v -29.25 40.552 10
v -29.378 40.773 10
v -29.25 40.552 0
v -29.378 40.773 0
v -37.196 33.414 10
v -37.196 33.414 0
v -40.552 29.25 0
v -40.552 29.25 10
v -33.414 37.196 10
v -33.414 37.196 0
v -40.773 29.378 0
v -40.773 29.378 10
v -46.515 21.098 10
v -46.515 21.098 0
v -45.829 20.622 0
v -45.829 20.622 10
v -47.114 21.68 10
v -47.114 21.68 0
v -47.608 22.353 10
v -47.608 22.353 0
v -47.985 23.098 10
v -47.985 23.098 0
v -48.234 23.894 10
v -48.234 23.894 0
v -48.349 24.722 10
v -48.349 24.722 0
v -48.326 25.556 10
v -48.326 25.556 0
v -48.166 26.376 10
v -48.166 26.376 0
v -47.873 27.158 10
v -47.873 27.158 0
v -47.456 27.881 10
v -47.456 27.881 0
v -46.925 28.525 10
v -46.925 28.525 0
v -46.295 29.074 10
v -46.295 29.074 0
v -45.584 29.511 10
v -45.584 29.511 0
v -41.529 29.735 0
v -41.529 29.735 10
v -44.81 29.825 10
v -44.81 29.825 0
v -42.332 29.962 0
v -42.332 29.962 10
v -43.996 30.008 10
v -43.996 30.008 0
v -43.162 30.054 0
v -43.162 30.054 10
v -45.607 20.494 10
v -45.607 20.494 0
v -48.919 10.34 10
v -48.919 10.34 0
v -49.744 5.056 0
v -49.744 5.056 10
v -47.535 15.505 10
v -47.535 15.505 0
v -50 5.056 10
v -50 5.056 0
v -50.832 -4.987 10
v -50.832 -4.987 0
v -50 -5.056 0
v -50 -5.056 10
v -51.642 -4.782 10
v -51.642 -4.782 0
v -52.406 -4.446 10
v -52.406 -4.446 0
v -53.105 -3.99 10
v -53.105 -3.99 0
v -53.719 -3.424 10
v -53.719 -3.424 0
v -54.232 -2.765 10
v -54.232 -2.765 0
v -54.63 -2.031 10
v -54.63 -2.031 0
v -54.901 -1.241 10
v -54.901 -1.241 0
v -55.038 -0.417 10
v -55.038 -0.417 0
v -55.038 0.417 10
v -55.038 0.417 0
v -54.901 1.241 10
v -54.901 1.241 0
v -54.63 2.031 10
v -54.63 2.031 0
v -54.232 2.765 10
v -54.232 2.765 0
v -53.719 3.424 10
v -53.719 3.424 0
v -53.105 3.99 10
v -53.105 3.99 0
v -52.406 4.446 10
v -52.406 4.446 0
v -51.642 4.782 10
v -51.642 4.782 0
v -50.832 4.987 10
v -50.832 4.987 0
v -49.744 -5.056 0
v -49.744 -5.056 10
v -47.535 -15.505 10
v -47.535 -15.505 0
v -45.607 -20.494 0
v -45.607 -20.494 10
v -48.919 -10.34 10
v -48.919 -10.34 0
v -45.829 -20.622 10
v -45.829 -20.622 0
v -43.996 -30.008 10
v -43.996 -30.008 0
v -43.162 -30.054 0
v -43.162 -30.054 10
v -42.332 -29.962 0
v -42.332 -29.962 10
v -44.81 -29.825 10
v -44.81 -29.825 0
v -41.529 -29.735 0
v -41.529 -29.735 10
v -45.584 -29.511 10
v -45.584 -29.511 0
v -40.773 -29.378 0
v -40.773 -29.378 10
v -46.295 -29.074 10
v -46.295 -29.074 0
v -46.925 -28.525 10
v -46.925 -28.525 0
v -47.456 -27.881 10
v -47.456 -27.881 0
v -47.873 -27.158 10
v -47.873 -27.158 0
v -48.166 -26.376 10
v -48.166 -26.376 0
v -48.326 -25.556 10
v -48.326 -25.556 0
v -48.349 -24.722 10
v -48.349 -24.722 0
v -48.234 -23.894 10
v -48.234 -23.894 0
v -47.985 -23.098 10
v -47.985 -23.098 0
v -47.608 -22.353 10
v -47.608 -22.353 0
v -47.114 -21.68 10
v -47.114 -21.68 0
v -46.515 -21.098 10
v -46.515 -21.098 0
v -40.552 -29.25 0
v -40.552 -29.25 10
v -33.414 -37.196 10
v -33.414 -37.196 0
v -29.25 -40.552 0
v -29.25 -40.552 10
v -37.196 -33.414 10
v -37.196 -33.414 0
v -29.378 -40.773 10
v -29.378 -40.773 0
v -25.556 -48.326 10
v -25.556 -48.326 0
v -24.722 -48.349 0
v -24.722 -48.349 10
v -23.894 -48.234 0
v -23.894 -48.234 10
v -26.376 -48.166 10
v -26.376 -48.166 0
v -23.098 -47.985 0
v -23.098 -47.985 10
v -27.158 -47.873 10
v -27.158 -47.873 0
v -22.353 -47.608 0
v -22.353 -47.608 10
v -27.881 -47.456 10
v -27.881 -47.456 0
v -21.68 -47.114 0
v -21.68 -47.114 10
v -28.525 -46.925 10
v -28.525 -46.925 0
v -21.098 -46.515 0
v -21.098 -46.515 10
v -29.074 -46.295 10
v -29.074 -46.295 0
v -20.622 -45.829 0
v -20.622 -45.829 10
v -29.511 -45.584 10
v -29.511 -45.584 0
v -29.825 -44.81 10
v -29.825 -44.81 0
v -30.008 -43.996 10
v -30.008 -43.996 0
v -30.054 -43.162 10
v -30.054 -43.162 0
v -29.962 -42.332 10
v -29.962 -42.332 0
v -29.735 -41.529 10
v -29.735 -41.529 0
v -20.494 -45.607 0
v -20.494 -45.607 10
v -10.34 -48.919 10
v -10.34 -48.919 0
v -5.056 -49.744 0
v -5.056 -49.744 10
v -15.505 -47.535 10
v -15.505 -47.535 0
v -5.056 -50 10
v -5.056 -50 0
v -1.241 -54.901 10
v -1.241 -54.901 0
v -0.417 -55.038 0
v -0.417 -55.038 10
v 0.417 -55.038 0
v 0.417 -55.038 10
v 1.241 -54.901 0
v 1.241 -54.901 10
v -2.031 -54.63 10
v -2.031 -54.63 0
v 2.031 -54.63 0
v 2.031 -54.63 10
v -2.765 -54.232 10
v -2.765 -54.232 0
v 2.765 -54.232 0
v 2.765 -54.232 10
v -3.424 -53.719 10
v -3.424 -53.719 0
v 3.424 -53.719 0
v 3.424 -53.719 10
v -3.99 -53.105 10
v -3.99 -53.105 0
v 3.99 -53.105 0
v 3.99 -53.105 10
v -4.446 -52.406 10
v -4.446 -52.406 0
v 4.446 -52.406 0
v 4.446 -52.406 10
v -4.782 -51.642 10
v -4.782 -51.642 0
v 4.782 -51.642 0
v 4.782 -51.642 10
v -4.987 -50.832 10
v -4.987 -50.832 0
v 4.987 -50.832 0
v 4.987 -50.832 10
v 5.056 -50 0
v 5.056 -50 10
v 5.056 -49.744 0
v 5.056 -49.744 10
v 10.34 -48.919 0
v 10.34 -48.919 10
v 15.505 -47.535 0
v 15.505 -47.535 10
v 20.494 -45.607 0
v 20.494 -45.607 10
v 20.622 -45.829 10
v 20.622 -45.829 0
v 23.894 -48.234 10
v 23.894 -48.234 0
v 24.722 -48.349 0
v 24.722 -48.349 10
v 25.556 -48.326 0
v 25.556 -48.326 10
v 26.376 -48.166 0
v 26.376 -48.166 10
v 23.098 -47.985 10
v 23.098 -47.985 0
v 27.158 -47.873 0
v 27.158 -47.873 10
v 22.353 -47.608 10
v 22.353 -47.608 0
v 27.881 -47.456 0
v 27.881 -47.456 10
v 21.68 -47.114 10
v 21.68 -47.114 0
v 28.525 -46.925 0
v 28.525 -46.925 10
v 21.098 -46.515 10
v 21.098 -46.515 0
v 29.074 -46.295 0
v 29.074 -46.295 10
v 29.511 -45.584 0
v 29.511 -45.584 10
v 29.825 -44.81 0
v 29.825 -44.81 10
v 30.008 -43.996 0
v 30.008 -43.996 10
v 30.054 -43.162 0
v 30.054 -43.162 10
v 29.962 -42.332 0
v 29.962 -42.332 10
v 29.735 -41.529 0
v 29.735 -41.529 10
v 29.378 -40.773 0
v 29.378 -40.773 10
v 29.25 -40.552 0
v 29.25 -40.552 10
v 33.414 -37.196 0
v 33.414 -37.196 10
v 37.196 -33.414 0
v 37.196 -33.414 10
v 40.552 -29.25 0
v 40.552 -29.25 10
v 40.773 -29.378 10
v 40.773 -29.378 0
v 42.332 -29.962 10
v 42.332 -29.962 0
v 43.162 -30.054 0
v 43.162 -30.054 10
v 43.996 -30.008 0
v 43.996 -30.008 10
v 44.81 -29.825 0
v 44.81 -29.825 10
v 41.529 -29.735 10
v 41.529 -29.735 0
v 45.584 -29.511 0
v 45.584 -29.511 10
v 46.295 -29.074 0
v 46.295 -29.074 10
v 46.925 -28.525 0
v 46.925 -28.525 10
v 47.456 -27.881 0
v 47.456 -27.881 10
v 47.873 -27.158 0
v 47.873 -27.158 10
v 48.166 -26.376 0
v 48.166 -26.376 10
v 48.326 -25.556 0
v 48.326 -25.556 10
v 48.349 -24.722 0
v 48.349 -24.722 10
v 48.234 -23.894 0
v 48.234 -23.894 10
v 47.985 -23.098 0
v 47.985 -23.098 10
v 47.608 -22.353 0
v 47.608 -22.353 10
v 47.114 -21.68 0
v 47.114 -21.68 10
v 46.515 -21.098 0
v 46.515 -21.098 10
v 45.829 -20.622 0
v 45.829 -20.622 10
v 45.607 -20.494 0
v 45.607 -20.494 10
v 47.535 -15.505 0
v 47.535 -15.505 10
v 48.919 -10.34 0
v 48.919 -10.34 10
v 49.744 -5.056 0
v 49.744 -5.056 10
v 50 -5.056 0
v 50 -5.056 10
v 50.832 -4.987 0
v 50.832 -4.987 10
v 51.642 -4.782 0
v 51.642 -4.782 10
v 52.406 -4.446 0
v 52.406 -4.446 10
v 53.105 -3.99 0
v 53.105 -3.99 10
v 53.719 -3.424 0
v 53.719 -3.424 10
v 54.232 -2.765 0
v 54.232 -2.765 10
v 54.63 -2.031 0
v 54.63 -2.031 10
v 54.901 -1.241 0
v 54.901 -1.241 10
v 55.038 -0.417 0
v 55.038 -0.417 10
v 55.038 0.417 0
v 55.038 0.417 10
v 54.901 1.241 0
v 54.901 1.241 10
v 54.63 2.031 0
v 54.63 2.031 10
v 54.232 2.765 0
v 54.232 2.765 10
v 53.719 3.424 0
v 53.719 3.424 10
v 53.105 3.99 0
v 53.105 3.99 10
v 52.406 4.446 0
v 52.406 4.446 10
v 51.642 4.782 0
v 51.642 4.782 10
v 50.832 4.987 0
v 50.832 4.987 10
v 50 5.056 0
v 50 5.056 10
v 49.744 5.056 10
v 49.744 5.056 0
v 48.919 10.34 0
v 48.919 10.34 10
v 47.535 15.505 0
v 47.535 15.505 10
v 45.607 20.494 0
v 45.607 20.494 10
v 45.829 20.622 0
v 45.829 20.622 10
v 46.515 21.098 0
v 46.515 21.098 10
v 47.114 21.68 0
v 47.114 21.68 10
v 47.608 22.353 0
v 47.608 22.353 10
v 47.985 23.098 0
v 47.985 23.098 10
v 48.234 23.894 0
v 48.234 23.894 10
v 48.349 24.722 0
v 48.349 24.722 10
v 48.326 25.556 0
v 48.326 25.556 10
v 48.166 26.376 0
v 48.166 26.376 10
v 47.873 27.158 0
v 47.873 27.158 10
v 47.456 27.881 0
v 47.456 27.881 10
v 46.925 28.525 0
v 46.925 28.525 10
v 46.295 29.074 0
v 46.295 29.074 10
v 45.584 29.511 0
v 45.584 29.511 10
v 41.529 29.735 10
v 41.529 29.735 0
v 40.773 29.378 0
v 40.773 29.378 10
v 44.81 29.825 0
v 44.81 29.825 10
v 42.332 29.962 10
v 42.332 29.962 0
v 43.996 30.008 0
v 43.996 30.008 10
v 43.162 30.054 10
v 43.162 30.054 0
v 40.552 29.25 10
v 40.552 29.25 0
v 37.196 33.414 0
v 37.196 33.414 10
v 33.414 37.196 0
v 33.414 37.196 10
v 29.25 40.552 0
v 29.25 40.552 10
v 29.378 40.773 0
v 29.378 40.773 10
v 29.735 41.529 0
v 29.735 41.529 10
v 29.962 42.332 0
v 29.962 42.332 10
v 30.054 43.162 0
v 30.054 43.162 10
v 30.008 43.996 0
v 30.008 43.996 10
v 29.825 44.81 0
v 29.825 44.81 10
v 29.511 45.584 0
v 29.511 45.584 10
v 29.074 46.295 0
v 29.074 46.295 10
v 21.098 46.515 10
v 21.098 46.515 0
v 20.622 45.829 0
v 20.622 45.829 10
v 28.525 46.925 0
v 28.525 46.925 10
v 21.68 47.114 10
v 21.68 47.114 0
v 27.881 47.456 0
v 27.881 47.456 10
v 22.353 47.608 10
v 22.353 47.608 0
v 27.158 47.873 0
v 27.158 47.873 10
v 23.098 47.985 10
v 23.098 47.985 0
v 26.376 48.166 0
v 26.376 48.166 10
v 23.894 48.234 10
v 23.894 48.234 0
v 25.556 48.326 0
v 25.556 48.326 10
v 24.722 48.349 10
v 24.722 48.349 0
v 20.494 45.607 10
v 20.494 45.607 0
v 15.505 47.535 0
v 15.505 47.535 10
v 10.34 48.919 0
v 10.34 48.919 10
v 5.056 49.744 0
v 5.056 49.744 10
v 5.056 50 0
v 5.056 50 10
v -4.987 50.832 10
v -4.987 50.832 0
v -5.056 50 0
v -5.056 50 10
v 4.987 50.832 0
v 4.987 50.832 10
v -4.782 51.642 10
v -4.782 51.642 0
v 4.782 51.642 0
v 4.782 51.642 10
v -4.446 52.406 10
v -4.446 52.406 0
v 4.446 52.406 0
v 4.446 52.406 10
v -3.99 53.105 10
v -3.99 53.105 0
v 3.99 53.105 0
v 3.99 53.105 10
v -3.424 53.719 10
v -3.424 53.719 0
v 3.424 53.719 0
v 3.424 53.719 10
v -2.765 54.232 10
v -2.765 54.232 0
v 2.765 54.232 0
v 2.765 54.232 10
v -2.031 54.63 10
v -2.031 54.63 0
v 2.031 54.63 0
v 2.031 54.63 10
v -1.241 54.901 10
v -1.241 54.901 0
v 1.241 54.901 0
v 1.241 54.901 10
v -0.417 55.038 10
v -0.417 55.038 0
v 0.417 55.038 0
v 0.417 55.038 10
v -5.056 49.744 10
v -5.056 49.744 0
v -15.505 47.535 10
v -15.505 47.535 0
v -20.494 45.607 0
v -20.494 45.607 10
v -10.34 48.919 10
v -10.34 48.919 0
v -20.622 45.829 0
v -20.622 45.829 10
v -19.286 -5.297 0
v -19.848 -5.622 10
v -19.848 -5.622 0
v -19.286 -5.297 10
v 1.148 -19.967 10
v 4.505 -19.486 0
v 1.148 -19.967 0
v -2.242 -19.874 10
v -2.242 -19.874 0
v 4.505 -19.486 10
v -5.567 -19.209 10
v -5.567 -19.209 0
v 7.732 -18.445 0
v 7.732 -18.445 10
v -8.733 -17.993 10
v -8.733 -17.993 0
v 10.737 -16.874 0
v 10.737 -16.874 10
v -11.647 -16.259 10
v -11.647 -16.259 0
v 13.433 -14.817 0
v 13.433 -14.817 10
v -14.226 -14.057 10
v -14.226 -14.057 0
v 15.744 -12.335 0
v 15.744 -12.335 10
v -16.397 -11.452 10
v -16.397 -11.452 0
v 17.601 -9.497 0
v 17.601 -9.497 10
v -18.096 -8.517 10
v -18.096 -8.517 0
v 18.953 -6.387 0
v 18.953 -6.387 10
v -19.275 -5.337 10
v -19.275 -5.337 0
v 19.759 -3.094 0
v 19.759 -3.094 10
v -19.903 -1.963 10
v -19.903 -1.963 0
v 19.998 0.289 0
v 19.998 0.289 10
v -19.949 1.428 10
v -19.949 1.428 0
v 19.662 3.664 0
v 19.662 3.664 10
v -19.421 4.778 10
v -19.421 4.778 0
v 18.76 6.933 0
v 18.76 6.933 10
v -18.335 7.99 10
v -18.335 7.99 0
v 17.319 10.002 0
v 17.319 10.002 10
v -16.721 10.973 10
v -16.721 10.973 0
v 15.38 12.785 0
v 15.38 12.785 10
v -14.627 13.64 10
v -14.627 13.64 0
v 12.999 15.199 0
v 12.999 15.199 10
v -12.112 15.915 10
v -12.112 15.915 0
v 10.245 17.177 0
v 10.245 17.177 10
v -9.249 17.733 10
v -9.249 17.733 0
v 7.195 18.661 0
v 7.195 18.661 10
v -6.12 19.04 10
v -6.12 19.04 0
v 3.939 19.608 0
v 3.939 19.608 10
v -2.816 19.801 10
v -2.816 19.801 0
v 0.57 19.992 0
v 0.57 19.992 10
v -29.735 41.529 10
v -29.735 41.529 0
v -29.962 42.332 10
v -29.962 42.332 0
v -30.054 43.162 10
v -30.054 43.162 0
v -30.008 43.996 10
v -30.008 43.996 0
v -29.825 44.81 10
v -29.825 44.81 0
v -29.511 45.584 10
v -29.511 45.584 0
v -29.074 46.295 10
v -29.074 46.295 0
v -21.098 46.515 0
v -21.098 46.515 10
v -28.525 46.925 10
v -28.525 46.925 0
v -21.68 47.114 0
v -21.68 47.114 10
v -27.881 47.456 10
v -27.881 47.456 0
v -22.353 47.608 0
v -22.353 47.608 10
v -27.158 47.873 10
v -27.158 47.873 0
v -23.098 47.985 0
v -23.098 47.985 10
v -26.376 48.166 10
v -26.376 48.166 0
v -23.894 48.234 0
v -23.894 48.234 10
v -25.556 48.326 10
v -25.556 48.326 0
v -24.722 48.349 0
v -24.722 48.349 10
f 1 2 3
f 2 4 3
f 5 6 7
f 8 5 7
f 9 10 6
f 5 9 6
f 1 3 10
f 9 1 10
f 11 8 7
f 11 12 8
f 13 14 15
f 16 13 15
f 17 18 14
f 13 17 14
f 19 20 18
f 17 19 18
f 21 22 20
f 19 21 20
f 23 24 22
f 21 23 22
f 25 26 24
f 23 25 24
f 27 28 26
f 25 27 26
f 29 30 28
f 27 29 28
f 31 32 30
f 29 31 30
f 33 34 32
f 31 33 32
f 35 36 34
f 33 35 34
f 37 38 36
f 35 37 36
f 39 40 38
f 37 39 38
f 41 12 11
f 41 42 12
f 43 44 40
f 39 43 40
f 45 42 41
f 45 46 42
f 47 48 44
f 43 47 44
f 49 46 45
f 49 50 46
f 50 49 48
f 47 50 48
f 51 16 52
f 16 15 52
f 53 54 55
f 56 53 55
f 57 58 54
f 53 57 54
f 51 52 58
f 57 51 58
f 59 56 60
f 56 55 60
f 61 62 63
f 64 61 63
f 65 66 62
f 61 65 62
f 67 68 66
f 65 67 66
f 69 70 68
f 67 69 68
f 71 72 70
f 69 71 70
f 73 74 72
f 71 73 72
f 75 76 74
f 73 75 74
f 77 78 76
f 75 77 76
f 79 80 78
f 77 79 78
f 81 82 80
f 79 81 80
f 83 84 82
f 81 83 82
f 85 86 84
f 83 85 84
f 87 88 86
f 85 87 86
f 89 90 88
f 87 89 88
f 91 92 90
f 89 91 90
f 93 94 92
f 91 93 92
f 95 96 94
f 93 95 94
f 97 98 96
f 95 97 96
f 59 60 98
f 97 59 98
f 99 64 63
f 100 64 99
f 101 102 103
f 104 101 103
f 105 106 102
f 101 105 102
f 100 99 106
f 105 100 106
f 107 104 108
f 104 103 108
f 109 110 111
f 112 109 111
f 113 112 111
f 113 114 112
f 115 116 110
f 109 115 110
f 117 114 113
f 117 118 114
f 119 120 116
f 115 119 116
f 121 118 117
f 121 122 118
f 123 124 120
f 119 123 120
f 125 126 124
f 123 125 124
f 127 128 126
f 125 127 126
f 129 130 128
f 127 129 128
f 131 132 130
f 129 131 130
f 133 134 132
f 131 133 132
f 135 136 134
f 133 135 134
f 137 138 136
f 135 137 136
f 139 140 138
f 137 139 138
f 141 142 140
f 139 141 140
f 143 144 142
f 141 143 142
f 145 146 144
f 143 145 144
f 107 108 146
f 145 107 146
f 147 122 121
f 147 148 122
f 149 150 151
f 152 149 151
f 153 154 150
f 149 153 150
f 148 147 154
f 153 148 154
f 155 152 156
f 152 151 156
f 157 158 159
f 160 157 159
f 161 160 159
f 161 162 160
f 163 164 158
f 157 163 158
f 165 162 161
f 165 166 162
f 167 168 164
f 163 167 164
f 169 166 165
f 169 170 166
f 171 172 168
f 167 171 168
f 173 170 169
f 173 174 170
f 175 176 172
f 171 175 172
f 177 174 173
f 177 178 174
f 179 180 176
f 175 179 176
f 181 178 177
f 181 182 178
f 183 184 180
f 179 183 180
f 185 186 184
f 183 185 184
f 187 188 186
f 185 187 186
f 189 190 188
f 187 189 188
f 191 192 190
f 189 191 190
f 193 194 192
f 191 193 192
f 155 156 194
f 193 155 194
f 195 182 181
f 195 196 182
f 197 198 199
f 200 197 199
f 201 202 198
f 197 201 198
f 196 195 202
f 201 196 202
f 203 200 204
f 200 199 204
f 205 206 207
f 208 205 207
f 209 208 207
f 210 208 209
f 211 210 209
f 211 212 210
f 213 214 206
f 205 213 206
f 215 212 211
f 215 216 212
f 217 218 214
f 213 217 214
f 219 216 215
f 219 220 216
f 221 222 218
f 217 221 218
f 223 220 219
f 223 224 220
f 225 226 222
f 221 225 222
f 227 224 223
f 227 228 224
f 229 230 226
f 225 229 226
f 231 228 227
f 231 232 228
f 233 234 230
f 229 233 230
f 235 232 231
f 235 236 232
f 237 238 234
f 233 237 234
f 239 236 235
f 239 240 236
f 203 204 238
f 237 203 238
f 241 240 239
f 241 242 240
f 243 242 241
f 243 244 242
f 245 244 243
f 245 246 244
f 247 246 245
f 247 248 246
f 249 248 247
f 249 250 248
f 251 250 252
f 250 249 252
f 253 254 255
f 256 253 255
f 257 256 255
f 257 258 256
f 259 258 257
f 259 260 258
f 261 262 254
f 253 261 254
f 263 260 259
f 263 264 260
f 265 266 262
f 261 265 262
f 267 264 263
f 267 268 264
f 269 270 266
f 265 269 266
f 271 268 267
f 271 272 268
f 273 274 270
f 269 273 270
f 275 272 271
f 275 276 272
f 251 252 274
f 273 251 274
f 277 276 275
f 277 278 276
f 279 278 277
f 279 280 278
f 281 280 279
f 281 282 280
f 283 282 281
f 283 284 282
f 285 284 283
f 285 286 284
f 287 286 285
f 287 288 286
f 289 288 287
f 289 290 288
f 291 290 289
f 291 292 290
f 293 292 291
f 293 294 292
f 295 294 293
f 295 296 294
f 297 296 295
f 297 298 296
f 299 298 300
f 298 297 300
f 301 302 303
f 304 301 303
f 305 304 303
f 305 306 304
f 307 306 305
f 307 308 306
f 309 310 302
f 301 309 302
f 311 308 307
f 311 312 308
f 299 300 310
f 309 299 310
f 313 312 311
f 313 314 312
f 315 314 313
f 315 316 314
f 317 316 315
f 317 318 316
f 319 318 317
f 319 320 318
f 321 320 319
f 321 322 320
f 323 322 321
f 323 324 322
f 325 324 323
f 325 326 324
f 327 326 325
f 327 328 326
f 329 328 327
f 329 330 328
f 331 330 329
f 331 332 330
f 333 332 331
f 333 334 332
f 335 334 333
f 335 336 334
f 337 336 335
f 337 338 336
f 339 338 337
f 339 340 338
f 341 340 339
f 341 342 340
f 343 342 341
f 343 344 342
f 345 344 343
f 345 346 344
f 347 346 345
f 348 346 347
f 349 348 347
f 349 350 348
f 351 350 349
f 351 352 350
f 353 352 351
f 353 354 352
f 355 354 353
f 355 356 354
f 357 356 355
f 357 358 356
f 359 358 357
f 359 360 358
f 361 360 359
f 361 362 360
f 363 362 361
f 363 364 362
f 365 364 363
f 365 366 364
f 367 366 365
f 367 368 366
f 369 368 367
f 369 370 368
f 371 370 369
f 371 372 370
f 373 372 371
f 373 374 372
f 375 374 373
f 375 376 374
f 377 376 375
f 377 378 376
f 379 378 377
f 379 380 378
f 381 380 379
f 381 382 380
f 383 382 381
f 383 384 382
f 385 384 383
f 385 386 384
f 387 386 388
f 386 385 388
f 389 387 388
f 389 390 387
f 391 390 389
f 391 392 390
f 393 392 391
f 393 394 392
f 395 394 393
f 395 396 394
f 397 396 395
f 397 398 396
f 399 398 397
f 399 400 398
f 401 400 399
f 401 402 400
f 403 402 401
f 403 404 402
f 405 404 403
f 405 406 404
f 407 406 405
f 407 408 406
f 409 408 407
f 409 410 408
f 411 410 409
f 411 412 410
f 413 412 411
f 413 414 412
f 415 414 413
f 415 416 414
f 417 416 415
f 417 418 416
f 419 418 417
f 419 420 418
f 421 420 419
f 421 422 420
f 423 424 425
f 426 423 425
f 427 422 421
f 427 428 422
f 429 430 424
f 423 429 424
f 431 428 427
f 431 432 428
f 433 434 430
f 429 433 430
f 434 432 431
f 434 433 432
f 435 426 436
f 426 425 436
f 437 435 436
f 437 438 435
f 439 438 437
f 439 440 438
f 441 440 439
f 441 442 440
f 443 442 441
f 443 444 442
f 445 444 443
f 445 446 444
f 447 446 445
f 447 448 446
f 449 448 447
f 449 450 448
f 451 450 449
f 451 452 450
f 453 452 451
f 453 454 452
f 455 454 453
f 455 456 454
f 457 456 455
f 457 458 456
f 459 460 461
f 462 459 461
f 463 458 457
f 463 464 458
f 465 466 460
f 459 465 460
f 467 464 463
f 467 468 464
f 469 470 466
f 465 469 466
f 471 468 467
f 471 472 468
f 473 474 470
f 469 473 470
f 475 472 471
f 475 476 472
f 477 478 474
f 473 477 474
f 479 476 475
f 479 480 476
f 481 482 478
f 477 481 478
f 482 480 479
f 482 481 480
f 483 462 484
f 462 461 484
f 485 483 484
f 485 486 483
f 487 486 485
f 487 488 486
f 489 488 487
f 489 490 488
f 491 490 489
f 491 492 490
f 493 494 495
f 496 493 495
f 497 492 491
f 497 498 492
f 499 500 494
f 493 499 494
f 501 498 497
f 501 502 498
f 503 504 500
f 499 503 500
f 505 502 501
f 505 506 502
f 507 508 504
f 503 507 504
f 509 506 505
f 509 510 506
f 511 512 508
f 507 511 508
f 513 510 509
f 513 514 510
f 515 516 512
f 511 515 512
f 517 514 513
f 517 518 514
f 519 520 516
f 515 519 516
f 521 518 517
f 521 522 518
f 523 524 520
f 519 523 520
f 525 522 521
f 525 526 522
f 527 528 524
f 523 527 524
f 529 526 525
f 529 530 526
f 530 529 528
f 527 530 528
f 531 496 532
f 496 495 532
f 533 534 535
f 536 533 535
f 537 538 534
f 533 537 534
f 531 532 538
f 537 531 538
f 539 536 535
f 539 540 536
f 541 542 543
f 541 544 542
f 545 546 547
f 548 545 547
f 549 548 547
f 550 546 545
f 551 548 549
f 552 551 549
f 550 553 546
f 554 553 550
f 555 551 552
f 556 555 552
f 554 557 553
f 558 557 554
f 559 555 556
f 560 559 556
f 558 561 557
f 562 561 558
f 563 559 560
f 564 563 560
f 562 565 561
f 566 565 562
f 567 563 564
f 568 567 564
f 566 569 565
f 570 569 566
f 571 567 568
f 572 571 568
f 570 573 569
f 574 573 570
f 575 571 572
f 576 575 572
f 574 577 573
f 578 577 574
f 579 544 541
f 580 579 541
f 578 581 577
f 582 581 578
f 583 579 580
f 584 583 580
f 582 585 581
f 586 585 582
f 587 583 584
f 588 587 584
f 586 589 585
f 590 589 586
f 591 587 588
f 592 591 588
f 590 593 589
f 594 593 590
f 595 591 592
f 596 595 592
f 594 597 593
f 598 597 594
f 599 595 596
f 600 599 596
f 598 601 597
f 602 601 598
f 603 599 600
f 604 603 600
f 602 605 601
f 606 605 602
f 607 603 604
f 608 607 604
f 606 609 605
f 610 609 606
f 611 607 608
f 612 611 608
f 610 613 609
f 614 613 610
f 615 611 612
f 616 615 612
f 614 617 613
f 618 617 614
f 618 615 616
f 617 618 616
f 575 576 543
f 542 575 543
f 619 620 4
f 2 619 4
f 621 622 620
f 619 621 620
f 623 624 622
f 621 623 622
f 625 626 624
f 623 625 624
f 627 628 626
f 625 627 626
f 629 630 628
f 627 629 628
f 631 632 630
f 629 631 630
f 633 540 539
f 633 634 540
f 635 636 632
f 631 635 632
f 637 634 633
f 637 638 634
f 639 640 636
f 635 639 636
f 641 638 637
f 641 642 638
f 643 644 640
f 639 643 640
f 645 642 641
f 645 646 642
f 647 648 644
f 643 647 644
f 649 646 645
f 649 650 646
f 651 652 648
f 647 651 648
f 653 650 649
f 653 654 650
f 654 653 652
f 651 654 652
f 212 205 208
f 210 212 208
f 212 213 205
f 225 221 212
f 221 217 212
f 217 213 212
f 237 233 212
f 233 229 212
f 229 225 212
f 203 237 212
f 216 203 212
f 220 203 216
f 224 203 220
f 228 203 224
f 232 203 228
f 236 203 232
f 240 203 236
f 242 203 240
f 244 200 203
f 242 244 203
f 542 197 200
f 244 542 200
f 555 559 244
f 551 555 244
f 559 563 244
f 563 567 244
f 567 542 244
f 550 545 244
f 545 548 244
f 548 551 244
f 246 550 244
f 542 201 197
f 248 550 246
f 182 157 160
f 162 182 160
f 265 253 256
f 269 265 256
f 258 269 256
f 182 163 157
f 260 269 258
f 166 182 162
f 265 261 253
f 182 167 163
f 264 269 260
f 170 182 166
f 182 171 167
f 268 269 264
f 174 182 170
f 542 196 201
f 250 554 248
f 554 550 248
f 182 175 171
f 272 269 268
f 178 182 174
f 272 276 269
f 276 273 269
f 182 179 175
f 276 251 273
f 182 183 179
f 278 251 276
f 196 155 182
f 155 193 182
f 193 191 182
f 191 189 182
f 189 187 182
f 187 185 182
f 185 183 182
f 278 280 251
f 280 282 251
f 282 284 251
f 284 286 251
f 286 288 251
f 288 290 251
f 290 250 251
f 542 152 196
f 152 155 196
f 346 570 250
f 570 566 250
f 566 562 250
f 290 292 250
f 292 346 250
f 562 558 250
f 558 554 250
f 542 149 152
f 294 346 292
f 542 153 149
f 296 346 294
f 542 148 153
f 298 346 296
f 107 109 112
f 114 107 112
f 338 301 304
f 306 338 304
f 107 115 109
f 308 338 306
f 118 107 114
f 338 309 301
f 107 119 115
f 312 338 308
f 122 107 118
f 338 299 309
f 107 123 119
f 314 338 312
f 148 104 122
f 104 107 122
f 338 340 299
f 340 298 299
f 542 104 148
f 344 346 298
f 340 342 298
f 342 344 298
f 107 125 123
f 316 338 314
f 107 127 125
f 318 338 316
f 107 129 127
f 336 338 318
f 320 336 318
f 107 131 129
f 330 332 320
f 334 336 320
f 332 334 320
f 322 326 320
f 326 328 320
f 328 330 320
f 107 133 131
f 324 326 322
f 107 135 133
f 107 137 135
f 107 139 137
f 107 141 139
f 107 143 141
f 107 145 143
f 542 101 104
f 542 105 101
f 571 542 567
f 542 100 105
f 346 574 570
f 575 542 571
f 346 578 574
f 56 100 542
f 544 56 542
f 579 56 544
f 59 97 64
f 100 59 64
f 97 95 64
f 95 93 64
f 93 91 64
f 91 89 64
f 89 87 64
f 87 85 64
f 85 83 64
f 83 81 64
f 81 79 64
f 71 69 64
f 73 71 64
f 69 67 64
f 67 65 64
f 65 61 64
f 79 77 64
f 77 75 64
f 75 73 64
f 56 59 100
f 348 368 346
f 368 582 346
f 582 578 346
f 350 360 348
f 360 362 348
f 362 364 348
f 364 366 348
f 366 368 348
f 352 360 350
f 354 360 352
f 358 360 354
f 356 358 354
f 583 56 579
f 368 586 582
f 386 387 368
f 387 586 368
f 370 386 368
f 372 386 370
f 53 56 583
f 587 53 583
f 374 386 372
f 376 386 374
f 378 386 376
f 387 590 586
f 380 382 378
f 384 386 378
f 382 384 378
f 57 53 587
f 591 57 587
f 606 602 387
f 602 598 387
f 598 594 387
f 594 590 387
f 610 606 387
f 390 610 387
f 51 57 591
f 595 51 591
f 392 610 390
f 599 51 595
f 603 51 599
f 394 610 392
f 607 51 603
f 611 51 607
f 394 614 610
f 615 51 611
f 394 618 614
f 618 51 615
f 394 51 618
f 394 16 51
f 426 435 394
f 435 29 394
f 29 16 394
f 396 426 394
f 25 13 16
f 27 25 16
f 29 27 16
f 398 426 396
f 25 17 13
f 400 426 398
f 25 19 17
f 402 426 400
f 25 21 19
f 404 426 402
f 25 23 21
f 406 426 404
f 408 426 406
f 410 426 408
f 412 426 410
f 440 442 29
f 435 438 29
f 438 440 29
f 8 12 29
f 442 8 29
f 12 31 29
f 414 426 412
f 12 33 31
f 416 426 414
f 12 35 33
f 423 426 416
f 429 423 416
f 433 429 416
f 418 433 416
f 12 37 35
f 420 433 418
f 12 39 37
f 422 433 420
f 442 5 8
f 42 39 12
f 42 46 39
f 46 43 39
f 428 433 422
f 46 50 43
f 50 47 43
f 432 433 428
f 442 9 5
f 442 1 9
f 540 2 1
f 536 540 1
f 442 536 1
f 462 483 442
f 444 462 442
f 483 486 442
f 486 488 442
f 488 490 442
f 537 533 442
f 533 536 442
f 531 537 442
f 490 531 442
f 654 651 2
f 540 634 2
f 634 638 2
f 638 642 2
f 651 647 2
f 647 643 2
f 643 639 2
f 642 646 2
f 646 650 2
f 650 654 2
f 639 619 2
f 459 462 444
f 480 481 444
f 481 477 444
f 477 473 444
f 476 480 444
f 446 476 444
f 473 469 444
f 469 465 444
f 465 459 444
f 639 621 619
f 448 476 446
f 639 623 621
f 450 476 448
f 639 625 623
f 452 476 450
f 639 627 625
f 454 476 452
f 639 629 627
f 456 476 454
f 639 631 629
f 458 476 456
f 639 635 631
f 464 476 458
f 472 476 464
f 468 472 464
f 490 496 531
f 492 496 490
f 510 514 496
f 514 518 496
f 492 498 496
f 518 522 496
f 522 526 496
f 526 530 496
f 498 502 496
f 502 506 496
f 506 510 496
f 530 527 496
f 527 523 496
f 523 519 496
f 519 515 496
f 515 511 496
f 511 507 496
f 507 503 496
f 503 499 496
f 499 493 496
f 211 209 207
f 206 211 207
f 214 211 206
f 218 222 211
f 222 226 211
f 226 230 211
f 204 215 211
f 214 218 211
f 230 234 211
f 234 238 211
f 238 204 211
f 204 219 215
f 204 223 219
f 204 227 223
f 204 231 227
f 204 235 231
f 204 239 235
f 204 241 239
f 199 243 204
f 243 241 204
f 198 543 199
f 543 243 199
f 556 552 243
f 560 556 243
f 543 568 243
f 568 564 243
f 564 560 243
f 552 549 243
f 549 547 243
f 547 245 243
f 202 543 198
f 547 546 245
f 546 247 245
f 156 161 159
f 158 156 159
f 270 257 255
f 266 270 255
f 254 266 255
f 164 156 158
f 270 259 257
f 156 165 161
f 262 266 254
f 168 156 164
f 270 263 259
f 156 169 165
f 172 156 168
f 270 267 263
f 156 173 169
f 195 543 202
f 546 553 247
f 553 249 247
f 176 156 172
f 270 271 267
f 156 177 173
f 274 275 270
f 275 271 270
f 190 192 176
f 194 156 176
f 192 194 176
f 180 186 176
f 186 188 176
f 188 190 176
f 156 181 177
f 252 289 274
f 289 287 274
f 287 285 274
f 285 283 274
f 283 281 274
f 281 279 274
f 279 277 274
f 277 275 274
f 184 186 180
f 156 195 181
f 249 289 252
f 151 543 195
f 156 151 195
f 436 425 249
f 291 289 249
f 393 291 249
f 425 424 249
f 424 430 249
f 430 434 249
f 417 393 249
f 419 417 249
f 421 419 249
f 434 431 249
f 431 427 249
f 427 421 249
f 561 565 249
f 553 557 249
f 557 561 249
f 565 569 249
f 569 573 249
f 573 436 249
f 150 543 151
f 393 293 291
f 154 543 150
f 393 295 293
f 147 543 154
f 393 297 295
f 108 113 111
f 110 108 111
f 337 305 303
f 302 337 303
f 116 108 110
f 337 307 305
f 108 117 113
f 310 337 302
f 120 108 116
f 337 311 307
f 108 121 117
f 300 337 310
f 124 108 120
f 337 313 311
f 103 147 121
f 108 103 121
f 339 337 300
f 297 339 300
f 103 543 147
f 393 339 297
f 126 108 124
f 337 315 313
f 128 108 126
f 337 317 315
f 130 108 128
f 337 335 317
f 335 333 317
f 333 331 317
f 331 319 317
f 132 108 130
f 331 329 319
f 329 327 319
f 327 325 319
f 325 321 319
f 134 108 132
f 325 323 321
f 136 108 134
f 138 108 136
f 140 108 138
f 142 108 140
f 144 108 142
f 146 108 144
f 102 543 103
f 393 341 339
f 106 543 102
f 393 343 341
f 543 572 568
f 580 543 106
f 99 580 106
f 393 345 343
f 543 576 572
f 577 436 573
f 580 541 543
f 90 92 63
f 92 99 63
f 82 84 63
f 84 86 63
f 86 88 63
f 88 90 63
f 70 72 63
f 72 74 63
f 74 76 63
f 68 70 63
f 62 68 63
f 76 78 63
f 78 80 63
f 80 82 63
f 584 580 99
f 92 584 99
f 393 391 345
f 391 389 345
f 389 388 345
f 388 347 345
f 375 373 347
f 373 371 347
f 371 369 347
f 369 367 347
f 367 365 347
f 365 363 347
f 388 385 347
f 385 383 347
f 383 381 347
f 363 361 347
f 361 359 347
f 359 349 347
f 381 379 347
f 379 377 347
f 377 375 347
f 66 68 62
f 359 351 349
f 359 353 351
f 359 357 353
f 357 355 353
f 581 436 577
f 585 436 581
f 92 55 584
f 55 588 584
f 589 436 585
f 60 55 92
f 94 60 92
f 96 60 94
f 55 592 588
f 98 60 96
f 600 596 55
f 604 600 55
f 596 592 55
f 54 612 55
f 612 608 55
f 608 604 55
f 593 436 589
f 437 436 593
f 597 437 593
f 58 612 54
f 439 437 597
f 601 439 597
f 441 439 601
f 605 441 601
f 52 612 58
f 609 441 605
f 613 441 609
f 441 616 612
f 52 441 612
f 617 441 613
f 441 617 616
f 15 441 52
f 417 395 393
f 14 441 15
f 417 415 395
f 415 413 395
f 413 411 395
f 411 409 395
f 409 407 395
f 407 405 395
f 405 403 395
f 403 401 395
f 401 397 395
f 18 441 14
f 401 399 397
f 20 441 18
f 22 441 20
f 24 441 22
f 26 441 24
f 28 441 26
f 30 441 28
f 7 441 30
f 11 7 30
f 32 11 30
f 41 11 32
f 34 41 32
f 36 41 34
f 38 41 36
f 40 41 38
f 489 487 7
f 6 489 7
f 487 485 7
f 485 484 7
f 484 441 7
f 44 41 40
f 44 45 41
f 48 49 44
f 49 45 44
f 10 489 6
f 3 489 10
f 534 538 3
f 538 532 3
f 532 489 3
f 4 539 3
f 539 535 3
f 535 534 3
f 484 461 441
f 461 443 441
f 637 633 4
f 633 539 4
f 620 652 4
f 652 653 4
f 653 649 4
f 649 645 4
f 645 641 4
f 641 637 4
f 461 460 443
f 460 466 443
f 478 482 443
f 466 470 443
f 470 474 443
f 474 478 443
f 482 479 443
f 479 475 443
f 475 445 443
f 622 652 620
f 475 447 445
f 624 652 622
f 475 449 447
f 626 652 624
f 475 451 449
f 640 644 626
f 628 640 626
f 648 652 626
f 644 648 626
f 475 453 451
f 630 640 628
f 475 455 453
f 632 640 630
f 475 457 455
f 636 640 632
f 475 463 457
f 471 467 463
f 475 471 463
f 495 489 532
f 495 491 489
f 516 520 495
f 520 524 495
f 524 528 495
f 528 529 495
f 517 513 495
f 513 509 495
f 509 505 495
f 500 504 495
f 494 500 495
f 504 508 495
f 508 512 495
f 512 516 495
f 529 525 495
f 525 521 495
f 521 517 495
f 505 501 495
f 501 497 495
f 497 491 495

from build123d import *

# Parameters (mm, degrees)
BOSS_EXTRUDE1_DEPTH = 10


with BuildPart() as part:
    # Sketch1 → Boss-Extrude1 (new body)
    with BuildSketch(Plane.XY):
        with BuildLine():
            Line((-5.055544828, 50), (-5.055544828, 49.743758066))
            ThreePointArc((-5.055544828, 49.743758066), (-12.940952255, 48.296291315), (-20.493648782, 45.607130579))
            Line((-20.493648782, 45.607130579), (-20.621769749, 45.829042603))
            ThreePointArc((-20.621769749, 45.829042603), (-27.527772414, 47.67950044), (-29.378230251, 40.773497775))
            Line((-29.378230251, 40.773497775), (-29.250109284, 40.551585751))
            ThreePointArc((-29.250109284, 40.551585751), (-35.355339059, 35.355339059), (-40.551585751, 29.250109284))
            Line((-40.551585751, 29.250109284), (-40.773497775, 29.378230251))
            ThreePointArc((-40.773497775, 29.378230251), (-47.67950044, 27.527772414), (-45.829042603, 20.621769749))
            Line((-45.829042603, 20.621769749), (-45.607130579, 20.493648782))
            ThreePointArc((-45.607130579, 20.493648782), (-48.296291315, 12.940952255), (-49.743758066, 5.055544828))
            Line((-49.743758066, 5.055544828), (-50, 5.055544828))
            ThreePointArc((-50, 5.055544828), (-55.055544828, 0), (-50, -5.055544828))
            Line((-50, -5.055544828), (-49.743758066, -5.055544828))
            ThreePointArc((-49.743758066, -5.055544828), (-48.296291315, -12.940952255), (-45.607130579, -20.493648782))
            Line((-45.607130579, -20.493648782), (-45.829042603, -20.621769749))
            ThreePointArc((-45.829042603, -20.621769749), (-47.67950044, -27.527772414), (-40.773497775, -29.378230251))
            Line((-40.773497775, -29.378230251), (-40.551585751, -29.250109284))
            ThreePointArc((-40.551585751, -29.250109284), (-35.355339059, -35.355339059), (-29.250109284, -40.551585751))
            Line((-29.250109284, -40.551585751), (-29.378230251, -40.773497775))
            ThreePointArc((-29.378230251, -40.773497775), (-27.527772414, -47.67950044), (-20.621769749, -45.829042603))
            Line((-20.621769749, -45.829042603), (-20.493648782, -45.607130579))
            ThreePointArc((-20.493648782, -45.607130579), (-12.940952255, -48.296291315), (-5.055544828, -49.743758066))
            Line((-5.055544828, -49.743758066), (-5.055544828, -50))
            ThreePointArc((-5.055544828, -50), (0, -55.055544828), (5.055544828, -50))
            Line((5.055544828, -50), (5.055544828, -49.743758066))
            ThreePointArc((5.055544828, -49.743758066), (12.940952255, -48.296291315), (20.493648782, -45.607130579))
            Line((20.493648782, -45.607130579), (20.621769749, -45.829042603))
            ThreePointArc((20.621769749, -45.829042603), (27.527772414, -47.67950044), (29.378230251, -40.773497775))
            Line((29.378230251, -40.773497775), (29.250109284, -40.551585751))
            ThreePointArc((29.250109284, -40.551585751), (35.355339059, -35.355339059), (40.551585751, -29.250109284))
            Line((40.551585751, -29.250109284), (40.773497775, -29.378230251))
            ThreePointArc((40.773497775, -29.378230251), (47.67950044, -27.527772414), (45.829042603, -20.621769749))
            Line((45.829042603, -20.621769749), (45.607130579, -20.493648782))
            ThreePointArc((45.607130579, -20.493648782), (48.296291315, -12.940952255), (49.743758066, -5.055544828))
            Line((49.743758066, -5.055544828), (50, -5.055544828))
            ThreePointArc((50, -5.055544828), (55.055544828, 0), (50, 5.055544828))
            Line((50, 5.055544828), (49.743758066, 5.055544828))
            ThreePointArc((49.743758066, 5.055544828), (48.296291315, 12.940952255), (45.607130579, 20.493648782))
            Line((45.607130579, 20.493648782), (45.829042603, 20.621769749))
            ThreePointArc((45.829042603, 20.621769749), (47.67950044, 27.527772414), (40.773497775, 29.378230251))
            Line((40.773497775, 29.378230251), (40.551585751, 29.250109284))
            ThreePointArc((40.551585751, 29.250109284), (35.355339059, 35.355339059), (29.250109284, 40.551585751))
            Line((29.250109284, 40.551585751), (29.378230251, 40.773497775))
            ThreePointArc((29.378230251, 40.773497775), (27.527772414, 47.67950044), (20.621769749, 45.829042603))
            Line((20.621769749, 45.829042603), (20.493648782, 45.607130579))
            ThreePointArc((20.493648782, 45.607130579), (12.940952255, 48.296291315), (5.055544828, 49.743758066))
            Line((5.055544828, 49.743758066), (5.055544828, 50))
            ThreePointArc((5.055544828, 50), (0, 55.055544828), (-5.055544828, 50))
        make_face()
        with BuildLine():
            ThreePointArc((-19.274651306, -5.337397964), (-19.565972123, -5.470493987), (-19.84828049, -5.621769749))
            Line((-19.84828049, -5.621769749), (-19.285788402, -5.297014791))
            ThreePointArc((-19.285788402, -5.297014791), (-19.323926995, -5.156146381), (-19.361036662, -5.015003426))
            ThreePointArc((-19.361036662, -5.015003426), (-20, 0), (-19.361036662, 5.015003426))
            ThreePointArc((-19.361036662, 5.015003426), (-19.318516526, 5.176380902), (-19.274651306, 5.337397964))
            ThreePointArc((-19.274651306, 5.337397964), (-17.320508076, 10), (-14.25964788, 14.023638698))
            ThreePointArc((-14.25964788, 14.023638698), (-14.142135624, 14.142135624), (-14.023638698, 14.25964788))
            ThreePointArc((-14.023638698, 14.25964788), (-10, 17.320508076), (-5.337397964, 19.274651306))
            ThreePointArc((-5.337397964, 19.274651306), (-5.176380902, 19.318516526), (-5.015003426, 19.361036662))
            ThreePointArc((-5.015003426, 19.361036662), (0, 20), (5.015003426, 19.361036662))
            ThreePointArc((5.015003426, 19.361036662), (5.176380902, 19.318516526), (5.337397964, 19.274651306))
            ThreePointArc((5.337397964, 19.274651306), (10, 17.320508076), (14.023638698, 14.25964788))
            ThreePointArc((14.023638698, 14.25964788), (14.142135624, 14.142135624), (14.25964788, 14.023638698))
            ThreePointArc((14.25964788, 14.023638698), (17.320508076, 10), (19.274651306, 5.337397964))
            ThreePointArc((19.274651306, 5.337397964), (19.318516526, 5.176380902), (19.361036662, 5.015003426))
            ThreePointArc((19.361036662, 5.015003426), (19.839616091, 2.527772414), (20, 0))
            ThreePointArc((20, 0), (19.839616091, -2.527772414), (19.361036662, -5.015003426))
            ThreePointArc((19.361036662, -5.015003426), (19.318516526, -5.176380902), (19.274651306, -5.337397964))
            ThreePointArc((19.274651306, -5.337397964), (17.320508076, -10), (14.25964788, -14.023638698))
            ThreePointArc((14.25964788, -14.023638698), (14.142135624, -14.142135624), (14.023638698, -14.25964788))
            ThreePointArc((14.023638698, -14.25964788), (10, -17.320508076), (5.337397964, -19.274651306))
            ThreePointArc((5.337397964, -19.274651306), (5.176380902, -19.318516526), (5.015003426, -19.361036662))
            ThreePointArc((5.015003426, -19.361036662), (0, -20), (-5.015003426, -19.361036662))
            ThreePointArc((-5.015003426, -19.361036662), (-5.176380902, -19.318516526), (-5.337397964, -19.274651306))
            ThreePointArc((-5.337397964, -19.274651306), (-10, -17.320508076), (-14.023638698, -14.25964788))
            ThreePointArc((-14.023638698, -14.25964788), (-14.142135624, -14.142135624), (-14.25964788, -14.023638698))
            ThreePointArc((-14.25964788, -14.023638698), (-17.320508076, -10), (-19.274651306, -5.337397964))
        make_face(mode=Mode.SUBTRACT)
    extrude(amount=BOSS_EXTRUDE1_DEPTH)


solid = part.part
